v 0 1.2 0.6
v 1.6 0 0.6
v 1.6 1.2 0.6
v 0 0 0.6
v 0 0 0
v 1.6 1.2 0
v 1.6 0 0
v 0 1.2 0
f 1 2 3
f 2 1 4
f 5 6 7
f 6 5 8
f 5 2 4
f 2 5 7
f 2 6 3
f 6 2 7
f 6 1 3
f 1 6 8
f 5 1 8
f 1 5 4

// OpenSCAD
/* Warning, this is a very basic generator with a lot of approximation 
input data : [UDFN, HJA, 1.6x1.2x0.6mm, 8, , A, C04-01153A]
generated by com.zoubworld.electronics.cad.model3d.Basic
Date : Sun Feb 15 10:50:49 CET 2026
*/

//body
color("black")
translate([0,0,0])
cube([1.6,1.2,0.6], center=false);
